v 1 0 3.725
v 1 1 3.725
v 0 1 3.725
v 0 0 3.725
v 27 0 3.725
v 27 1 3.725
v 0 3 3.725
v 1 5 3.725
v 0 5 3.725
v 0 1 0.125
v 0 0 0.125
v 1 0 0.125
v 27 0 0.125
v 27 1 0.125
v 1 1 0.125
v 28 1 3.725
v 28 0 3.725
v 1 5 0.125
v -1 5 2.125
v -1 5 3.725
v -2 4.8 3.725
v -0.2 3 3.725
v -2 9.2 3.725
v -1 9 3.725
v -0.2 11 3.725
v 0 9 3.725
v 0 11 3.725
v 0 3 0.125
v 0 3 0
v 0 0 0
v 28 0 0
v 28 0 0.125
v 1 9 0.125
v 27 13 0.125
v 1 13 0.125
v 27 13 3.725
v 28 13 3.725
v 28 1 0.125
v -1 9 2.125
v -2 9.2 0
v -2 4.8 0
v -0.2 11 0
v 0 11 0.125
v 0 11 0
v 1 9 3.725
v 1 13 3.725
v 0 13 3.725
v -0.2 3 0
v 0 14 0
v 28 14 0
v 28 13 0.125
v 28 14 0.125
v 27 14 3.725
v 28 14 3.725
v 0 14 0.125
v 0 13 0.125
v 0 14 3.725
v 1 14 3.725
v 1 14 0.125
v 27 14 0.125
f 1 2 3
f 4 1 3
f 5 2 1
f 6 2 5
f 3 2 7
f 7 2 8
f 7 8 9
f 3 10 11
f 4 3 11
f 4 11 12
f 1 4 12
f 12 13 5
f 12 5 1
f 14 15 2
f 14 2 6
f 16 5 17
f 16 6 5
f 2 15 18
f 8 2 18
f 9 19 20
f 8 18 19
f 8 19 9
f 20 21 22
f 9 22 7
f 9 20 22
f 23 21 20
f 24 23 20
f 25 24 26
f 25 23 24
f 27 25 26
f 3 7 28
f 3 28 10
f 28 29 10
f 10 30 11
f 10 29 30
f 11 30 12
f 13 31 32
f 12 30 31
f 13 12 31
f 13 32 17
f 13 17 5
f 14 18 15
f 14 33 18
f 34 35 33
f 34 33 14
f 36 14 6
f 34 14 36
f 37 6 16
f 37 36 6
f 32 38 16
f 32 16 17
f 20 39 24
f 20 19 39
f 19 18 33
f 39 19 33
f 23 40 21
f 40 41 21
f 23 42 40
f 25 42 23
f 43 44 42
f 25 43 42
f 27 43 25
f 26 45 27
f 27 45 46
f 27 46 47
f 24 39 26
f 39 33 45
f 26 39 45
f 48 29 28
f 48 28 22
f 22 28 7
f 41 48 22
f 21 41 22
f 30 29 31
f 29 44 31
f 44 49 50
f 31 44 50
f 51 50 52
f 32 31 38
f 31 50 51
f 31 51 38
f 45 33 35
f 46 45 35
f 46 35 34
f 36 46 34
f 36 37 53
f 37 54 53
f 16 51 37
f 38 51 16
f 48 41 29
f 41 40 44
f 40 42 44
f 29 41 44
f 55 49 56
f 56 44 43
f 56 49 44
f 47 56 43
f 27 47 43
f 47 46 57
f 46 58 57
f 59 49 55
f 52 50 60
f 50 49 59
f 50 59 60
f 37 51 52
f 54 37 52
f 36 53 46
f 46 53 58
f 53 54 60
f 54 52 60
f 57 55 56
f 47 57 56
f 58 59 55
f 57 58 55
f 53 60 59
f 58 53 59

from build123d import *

# Parameters (mm, degrees)
BOX001_W        = 3
BOX001_H        = 4
BOX001_DEPTH    = 5
CHAMFER_SIZE    = 2
BOX002_W        = 2
BOX002_H        = 8
BOX002_DEPTH    = 3.725
CHAMFER001_SIZE = 1.8
SKETCH004_W     = 1
SKETCH004_H     = 14
PAD004_DEPTH    = 3.6
SKETCH005_W     = 28
SKETCH005_H     = 1
PAD005_DEPTH    = 3.6
SKETCH006_W     = 1
SKETCH006_H     = 14
PAD006_DEPTH    = 3.6
SKETCH003_W     = 28
SKETCH003_H     = 1
PAD003_DEPTH    = 3.6
BOX_W           = 28
BOX_H           = 14
BOX_DEPTH       = 0.125


with BuildPart() as chamfer_body:
    # Box001 → Box001 (new body)
    with BuildSketch(Plane(origin=(-1, 5, 0.125), x_dir=(1, 0, 0), z_dir=(0, 0, 1))):
        with Locations((1.5, 2)):
            Rectangle(BOX001_W, BOX001_H)
    extrude(amount=BOX001_DEPTH)

    # Chamfer
    chamfer_edges = [chamfer_body.edges().sort_by_distance(p)[0] for p in [
        (-1, 7, 0.125),
    ]]
    chamfer(chamfer_edges, length=CHAMFER_SIZE)


with BuildPart() as chamfer001:
    # Box002 → Box002 (new body)
    with BuildSketch(Plane(origin=(-2, 3, 0), x_dir=(1, 0, 0), z_dir=(0, 0, 1))):
        with Locations((1, 4)):
            Rectangle(BOX002_W, BOX002_H)
    extrude(amount=BOX002_DEPTH)

    # Chamfer001
    chamfer001_edges = [chamfer001.edges().sort_by_distance(p)[0] for p in [
        (-2, 3, 1.8625),
        (-2, 11, 1.8625),
    ]]
    chamfer(chamfer001_edges, length=CHAMFER001_SIZE)


with BuildPart() as pad004:
    # Sketch004 → Pad004 (new body)
    with BuildSketch(Plane.XY.offset(0.125)):
        with Locations((0.5, 7)):
            Rectangle(SKETCH004_W, SKETCH004_H)
    extrude(amount=PAD004_DEPTH)


with BuildPart() as pad005:
    # Sketch005 → Pad005 (new body)
    with BuildSketch(Plane.XY.offset(0.125)):
        with Locations((14, 0.5)):
            Rectangle(SKETCH005_W, SKETCH005_H)
    extrude(amount=PAD005_DEPTH)


with BuildPart() as pad006:
    # Sketch006 → Pad006 (new body)
    with BuildSketch(Plane.XY.offset(0.125)):
        with Locations((27.5, 7)):
            Rectangle(SKETCH006_W, SKETCH006_H)
    extrude(amount=PAD006_DEPTH)


with BuildPart() as walls:
    # Sketch003 → Pad003 (new body)
    with BuildSketch(Plane.XY.offset(0.125)):
        with Locations((14, 13.5)):
            Rectangle(SKETCH003_W, SKETCH003_H)
    extrude(amount=PAD003_DEPTH)

    # Fusion001: union Pad004, Pad005, Pad006
    add(pad004.part)
    add(pad005.part)
    add(pad006.part)

    # Fusion: union Chamfer001
    add(chamfer001.part)

    # Cut: cut Chamfer body
    add(chamfer_body.part, mode=Mode.SUBTRACT)


with BuildPart() as base_and_walls_do_not_edit:
    # Box → Box (new body)
    with BuildSketch(Plane.XY):
        with Locations((14, 7)):
            Rectangle(BOX_W, BOX_H)
    extrude(amount=BOX_DEPTH)

    # Fusion024: union Walls
    add(walls.part)


solid = base_and_walls_do_not_edit.part
